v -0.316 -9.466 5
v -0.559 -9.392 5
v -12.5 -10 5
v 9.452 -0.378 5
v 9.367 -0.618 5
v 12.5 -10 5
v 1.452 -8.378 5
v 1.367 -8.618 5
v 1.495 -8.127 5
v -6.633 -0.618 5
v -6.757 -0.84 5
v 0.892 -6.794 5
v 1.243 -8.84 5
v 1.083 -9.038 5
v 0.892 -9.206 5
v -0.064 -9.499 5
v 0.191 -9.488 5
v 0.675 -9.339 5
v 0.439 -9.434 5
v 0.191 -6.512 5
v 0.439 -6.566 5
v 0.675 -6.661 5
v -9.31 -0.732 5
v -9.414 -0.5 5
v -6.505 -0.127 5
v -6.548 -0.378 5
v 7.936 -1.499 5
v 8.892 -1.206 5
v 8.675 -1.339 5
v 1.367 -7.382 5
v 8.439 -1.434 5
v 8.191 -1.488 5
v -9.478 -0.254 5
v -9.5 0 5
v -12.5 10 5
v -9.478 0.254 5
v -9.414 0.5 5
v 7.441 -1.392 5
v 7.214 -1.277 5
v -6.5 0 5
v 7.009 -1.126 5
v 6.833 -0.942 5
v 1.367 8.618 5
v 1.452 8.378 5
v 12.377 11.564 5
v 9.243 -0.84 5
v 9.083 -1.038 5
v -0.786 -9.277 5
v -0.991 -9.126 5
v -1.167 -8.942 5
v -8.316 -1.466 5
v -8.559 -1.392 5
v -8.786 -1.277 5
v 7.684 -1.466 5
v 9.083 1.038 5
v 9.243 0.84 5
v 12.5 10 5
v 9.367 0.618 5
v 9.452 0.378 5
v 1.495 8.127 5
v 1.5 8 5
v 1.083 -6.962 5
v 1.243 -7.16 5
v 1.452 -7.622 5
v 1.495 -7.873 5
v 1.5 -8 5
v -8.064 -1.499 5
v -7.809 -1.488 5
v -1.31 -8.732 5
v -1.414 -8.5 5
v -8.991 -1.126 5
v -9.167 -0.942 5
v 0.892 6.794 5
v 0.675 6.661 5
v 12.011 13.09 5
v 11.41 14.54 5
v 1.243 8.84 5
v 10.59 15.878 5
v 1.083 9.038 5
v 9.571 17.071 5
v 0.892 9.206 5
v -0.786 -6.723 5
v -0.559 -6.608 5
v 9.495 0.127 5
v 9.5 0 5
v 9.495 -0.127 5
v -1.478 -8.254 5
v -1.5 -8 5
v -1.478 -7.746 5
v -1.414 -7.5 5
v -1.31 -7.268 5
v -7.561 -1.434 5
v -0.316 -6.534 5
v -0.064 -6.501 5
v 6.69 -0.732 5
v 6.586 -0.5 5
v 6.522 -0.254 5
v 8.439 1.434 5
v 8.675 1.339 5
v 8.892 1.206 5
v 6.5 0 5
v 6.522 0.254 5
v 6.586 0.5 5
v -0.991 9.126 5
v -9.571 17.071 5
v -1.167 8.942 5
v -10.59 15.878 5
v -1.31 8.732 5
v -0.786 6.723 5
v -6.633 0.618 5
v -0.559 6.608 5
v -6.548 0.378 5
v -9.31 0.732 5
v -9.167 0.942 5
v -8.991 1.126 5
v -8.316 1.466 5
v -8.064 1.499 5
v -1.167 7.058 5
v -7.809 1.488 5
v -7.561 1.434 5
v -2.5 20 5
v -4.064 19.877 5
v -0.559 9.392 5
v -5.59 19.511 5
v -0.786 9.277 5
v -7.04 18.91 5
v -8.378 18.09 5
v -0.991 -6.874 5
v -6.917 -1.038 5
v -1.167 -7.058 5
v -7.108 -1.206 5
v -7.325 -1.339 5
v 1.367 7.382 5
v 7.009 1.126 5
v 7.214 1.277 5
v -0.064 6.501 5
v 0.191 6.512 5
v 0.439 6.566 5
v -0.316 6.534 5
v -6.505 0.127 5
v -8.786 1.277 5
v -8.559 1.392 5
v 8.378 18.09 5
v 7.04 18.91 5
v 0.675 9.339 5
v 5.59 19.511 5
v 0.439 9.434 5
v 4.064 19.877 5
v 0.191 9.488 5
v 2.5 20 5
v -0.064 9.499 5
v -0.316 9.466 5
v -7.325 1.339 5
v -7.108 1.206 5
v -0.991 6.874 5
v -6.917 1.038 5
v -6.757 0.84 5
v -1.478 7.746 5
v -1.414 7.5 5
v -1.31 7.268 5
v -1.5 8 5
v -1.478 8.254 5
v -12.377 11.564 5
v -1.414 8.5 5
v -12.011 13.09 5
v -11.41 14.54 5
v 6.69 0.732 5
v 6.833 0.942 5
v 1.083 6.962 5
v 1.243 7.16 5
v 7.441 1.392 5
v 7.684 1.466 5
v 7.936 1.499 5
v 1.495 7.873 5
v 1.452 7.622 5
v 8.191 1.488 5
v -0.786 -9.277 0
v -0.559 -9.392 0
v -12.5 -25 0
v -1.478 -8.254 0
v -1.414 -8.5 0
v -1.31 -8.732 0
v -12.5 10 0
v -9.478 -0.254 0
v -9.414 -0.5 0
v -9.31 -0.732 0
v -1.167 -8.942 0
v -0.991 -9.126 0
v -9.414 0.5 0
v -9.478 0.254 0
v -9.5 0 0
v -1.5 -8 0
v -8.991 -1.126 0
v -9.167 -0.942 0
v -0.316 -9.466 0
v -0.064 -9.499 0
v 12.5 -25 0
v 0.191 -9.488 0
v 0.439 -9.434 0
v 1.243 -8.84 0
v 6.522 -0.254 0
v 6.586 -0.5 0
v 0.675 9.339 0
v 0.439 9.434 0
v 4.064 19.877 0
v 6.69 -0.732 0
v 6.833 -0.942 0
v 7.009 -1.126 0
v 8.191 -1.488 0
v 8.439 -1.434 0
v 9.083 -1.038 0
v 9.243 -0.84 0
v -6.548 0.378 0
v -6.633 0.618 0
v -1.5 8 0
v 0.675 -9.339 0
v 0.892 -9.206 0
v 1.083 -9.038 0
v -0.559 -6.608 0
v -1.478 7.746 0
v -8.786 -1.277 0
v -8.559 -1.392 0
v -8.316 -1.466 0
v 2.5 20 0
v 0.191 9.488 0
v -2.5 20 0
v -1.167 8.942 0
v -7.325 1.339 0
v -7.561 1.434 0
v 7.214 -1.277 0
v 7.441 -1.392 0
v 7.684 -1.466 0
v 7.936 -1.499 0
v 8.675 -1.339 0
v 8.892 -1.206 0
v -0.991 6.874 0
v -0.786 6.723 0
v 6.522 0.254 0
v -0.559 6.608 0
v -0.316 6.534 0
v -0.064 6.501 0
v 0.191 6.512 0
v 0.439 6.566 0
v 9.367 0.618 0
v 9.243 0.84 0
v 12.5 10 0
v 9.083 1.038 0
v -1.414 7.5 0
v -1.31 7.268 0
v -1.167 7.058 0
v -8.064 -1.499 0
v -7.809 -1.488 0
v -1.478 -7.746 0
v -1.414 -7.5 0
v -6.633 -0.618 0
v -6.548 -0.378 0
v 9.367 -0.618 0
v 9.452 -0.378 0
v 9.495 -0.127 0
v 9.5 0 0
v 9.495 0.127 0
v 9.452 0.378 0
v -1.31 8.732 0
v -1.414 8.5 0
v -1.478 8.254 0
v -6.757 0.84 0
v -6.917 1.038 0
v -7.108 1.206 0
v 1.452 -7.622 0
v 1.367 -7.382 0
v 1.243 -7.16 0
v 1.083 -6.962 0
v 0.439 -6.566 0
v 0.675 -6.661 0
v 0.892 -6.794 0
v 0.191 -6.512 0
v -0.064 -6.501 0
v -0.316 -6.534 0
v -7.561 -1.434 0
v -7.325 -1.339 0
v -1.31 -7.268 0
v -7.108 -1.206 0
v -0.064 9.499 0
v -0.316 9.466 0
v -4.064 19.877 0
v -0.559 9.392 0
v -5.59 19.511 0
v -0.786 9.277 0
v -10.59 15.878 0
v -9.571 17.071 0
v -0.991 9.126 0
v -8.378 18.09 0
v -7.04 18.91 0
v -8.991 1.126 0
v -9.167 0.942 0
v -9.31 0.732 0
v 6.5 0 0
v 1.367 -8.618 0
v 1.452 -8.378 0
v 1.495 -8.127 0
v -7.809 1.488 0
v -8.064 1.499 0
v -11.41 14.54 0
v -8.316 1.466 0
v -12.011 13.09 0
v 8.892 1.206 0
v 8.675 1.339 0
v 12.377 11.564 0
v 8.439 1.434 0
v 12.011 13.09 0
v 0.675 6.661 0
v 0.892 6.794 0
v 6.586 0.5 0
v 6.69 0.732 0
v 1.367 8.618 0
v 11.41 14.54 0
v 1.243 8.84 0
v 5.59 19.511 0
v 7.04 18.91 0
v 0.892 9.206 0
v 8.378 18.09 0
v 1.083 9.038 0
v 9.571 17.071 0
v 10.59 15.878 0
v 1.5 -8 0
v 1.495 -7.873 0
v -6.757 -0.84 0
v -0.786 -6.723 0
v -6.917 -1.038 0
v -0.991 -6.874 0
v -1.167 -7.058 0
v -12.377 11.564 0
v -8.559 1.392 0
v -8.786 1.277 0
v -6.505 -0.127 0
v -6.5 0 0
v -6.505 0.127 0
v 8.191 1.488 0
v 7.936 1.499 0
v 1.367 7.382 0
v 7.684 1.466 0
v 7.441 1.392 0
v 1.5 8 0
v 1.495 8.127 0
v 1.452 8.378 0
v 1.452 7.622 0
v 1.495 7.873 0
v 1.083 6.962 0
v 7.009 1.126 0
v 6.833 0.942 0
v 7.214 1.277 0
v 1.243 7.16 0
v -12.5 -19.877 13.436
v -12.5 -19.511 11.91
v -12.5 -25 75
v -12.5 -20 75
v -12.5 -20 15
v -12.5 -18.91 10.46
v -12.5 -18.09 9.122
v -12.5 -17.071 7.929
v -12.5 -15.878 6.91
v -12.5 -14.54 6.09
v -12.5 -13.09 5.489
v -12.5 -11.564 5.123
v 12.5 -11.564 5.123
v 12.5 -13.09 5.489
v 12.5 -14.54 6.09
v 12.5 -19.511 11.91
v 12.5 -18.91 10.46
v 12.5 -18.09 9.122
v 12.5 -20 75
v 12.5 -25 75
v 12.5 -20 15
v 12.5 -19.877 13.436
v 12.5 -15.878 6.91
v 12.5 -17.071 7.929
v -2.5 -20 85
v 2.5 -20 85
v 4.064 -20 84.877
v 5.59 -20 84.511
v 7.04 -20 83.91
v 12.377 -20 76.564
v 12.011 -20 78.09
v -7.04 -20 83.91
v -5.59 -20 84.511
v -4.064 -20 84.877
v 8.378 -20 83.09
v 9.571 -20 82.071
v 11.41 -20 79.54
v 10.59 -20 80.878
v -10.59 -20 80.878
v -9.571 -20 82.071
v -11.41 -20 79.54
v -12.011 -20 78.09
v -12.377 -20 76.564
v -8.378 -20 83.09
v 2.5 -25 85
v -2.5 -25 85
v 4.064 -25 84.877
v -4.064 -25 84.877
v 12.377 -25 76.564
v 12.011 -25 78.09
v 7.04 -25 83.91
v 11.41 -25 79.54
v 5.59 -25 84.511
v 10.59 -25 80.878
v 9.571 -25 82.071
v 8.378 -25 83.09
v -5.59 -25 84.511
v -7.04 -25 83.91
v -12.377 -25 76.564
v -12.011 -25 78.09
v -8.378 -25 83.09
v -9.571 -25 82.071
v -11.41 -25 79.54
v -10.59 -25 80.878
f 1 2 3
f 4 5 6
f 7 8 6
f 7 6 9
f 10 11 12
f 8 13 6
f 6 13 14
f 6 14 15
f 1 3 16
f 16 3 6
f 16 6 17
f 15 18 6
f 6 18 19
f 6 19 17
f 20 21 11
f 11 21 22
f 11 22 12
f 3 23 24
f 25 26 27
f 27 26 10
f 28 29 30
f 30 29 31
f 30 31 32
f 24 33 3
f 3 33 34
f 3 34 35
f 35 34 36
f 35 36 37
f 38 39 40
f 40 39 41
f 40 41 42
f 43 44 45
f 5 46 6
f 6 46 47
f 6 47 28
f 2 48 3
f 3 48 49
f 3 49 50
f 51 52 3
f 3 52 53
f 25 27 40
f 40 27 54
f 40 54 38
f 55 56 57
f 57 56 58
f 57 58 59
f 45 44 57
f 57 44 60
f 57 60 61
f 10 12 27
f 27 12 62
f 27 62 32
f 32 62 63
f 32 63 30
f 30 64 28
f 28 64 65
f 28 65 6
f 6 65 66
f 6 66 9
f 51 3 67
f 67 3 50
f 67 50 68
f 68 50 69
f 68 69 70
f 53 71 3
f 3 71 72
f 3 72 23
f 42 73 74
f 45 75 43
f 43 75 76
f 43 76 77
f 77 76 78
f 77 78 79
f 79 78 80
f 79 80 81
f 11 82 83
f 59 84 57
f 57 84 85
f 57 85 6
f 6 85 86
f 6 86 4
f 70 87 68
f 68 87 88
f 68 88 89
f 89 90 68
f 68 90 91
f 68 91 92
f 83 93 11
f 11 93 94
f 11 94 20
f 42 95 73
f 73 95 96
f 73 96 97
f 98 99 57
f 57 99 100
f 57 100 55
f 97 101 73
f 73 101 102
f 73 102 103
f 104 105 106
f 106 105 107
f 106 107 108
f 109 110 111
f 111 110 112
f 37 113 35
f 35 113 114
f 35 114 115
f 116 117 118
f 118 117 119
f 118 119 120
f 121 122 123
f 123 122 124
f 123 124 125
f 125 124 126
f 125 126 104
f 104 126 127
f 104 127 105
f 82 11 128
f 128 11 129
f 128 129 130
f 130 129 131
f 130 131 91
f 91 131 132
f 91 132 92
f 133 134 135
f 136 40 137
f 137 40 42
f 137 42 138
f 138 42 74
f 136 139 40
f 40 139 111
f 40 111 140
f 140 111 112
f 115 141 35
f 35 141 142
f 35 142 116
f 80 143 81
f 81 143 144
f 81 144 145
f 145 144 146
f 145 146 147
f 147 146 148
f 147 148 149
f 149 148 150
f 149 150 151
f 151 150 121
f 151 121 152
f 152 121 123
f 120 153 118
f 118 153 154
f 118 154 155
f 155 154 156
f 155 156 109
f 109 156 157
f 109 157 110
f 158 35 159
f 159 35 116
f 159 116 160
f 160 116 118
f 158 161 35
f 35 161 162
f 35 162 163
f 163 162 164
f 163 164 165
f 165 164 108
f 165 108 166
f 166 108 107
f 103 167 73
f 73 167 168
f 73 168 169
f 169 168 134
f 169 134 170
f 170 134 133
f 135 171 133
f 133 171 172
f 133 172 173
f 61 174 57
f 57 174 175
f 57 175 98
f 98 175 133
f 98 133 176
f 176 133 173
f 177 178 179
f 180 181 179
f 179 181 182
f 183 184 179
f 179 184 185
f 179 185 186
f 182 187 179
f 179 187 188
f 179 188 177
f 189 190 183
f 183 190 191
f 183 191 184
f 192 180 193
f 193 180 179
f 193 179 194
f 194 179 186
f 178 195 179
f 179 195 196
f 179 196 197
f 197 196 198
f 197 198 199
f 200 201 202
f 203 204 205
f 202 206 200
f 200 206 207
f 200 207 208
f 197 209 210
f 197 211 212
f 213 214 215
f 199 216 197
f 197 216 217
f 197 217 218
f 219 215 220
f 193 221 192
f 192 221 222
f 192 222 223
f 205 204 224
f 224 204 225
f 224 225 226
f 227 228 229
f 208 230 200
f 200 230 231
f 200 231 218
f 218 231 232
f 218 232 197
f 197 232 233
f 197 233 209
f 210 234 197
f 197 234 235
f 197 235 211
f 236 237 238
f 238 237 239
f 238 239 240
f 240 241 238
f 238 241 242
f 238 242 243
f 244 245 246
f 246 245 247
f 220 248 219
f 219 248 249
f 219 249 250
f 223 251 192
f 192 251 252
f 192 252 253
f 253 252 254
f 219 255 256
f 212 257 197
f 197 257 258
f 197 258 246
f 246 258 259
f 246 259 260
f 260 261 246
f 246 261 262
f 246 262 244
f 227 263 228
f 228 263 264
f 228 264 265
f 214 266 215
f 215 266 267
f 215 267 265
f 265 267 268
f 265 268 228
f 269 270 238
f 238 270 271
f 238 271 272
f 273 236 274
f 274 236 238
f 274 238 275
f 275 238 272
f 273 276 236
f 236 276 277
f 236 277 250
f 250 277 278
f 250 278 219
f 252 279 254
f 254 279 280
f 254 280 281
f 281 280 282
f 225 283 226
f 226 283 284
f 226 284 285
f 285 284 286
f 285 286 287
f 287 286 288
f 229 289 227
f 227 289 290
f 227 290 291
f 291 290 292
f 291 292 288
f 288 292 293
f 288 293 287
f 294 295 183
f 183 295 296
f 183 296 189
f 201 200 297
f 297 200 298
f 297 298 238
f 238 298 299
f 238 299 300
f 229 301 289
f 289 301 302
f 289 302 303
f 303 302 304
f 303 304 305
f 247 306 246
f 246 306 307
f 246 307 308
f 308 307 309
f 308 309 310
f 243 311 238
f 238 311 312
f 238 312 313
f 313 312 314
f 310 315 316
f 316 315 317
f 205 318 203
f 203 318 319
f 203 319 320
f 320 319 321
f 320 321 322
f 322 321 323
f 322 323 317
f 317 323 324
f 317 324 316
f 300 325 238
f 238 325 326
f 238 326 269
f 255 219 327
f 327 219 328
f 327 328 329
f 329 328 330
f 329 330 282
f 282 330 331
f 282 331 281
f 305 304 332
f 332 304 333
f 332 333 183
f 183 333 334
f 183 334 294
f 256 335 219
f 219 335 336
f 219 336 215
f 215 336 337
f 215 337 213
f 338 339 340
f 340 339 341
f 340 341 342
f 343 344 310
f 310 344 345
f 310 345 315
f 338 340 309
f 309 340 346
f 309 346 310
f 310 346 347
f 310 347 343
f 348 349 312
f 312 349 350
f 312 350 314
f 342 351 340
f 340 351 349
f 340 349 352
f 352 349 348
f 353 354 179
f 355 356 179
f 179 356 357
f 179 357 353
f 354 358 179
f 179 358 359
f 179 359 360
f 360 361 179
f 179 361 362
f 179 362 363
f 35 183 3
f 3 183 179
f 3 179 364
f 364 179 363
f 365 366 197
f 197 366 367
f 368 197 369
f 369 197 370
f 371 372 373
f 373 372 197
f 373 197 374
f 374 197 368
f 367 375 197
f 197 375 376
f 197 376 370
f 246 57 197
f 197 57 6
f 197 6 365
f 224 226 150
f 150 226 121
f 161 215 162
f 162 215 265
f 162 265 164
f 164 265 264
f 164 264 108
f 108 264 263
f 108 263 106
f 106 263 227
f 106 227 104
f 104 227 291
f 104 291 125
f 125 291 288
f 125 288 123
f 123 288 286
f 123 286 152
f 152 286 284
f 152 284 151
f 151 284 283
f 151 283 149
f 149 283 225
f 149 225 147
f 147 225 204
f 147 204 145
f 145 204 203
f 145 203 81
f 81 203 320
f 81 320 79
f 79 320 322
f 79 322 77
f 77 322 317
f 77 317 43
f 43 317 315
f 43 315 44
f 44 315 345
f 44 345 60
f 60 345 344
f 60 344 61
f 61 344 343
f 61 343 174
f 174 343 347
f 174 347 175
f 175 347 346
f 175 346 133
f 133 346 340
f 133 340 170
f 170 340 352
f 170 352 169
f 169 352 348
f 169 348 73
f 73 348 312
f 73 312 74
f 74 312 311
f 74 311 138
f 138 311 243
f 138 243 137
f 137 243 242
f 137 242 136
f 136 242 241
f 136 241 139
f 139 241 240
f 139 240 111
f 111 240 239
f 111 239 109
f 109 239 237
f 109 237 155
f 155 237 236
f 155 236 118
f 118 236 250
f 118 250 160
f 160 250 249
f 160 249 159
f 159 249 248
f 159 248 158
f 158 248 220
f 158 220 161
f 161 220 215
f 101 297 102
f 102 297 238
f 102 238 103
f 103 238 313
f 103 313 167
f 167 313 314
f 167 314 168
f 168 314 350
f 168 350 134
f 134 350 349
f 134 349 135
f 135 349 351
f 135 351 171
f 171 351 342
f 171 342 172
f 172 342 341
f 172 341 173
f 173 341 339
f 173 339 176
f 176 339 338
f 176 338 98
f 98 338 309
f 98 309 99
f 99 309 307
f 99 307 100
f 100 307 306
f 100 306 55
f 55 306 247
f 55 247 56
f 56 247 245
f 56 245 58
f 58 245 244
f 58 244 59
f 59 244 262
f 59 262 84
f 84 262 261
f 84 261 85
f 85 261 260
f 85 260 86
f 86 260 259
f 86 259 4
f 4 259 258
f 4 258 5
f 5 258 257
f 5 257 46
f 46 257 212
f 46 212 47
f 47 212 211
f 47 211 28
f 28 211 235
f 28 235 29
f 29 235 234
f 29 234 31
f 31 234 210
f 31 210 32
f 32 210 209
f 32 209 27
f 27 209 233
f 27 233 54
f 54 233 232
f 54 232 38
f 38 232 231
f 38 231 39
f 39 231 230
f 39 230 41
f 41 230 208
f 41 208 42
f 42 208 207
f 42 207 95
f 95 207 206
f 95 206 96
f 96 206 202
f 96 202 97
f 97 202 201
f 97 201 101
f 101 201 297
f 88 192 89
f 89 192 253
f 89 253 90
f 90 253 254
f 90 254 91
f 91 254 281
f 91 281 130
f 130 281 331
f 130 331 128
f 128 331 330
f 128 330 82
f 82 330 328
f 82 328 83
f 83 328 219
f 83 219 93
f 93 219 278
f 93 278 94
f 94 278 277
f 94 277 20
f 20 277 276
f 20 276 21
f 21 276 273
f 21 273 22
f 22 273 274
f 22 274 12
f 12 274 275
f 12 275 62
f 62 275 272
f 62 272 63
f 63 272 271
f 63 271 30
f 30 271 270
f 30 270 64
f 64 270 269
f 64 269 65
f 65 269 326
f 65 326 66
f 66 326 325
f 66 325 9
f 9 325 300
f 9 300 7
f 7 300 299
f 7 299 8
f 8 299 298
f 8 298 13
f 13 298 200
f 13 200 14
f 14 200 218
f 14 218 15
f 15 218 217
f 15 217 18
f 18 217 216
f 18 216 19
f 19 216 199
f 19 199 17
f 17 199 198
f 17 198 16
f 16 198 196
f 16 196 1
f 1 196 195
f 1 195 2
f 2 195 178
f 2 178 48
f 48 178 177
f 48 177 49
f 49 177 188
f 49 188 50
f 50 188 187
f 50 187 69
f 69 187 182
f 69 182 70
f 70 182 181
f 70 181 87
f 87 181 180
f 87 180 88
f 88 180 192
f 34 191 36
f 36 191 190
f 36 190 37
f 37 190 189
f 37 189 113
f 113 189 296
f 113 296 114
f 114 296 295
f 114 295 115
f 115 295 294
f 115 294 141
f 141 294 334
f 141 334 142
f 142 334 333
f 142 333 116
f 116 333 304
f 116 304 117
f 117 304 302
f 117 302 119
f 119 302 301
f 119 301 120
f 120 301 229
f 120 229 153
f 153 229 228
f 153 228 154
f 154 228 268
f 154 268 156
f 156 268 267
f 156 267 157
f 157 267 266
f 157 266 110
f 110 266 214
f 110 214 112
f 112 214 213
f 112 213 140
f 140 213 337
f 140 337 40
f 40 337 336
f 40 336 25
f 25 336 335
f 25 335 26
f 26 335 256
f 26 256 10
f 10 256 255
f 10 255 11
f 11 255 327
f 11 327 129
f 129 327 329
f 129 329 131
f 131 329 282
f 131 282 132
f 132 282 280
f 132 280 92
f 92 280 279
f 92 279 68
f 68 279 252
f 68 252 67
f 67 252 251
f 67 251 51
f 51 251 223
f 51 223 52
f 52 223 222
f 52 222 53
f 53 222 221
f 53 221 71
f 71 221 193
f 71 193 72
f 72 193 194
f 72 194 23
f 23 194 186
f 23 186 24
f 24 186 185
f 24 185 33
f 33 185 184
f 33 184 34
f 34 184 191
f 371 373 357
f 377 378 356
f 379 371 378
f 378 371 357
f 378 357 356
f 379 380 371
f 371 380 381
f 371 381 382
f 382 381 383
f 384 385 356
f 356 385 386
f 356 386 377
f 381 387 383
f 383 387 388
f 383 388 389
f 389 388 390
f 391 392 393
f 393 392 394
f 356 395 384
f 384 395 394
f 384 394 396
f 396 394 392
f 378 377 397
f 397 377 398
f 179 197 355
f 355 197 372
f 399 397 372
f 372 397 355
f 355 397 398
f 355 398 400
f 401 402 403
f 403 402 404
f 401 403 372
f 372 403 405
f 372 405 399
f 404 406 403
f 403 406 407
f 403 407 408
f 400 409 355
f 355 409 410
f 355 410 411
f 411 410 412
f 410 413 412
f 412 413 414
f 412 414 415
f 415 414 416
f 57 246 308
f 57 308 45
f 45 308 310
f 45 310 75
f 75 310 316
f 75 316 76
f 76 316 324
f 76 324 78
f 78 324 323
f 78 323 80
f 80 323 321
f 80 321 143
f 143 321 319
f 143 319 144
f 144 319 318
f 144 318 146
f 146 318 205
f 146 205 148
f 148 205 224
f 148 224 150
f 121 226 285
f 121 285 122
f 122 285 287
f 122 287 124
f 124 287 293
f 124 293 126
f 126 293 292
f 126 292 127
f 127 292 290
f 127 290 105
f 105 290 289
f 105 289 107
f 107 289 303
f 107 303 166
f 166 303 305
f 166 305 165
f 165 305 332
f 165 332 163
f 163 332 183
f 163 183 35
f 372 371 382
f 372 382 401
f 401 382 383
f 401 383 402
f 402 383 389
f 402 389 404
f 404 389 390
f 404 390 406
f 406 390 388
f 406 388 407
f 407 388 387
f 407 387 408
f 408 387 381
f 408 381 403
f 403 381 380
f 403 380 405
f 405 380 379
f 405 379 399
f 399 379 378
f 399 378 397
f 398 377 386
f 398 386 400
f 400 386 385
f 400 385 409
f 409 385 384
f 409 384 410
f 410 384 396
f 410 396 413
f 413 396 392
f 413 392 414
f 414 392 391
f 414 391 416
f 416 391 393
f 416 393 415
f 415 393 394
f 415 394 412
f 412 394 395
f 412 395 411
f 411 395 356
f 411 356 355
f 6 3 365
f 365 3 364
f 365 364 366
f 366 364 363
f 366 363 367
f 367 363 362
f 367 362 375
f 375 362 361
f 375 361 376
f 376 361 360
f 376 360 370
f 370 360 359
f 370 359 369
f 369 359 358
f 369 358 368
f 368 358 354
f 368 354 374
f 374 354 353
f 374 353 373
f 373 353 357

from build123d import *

# Parameters (mm, degrees)
SKETCH_1_W      = 25
SKETCH_1_H      = 40
SKETCH_1_R      = 1.5
EXTRUDE_1_DEPTH = 5
SKETCH_2_W      = 25
SKETCH_2_H      = 85
EXTRUDE_2_DEPTH = 5
FILLET_1_R      = 10


with BuildPart() as part:
    # 草图1 → 凸台-拉伸1 (new body)
    with BuildSketch(Plane.XY):
        Rectangle(SKETCH_1_W, SKETCH_1_H)
        with Locations((0, 8)):
            Circle(SKETCH_1_R, mode=Mode.SUBTRACT)
        with Locations((8, 0)):
            Circle(SKETCH_1_R, mode=Mode.SUBTRACT)
        with Locations((0, -8)):
            Circle(SKETCH_1_R, mode=Mode.SUBTRACT)
        with Locations((-8, 0)):
            Circle(SKETCH_1_R, mode=Mode.SUBTRACT)
    extrude(amount=EXTRUDE_1_DEPTH)

    # 草图2 → 凸台-拉伸2 (add)
    with BuildSketch(Plane.XZ.offset(20)):
        with Locations((0, 42.5)):
            Rectangle(SKETCH_2_W, SKETCH_2_H)
    extrude(amount=EXTRUDE_2_DEPTH)

    # 圆角1
    fillet_1_edges = [part.edges().sort_by_distance(p)[0] for p in [
        (-12.5, -22.5, 85),
        (12.5, -22.5, 85),
        (-12.5, 20, 2.5),
        (12.5, 20, 2.5),
        (0, -20, 5),
    ]]
    fillet(fillet_1_edges, radius=FILLET_1_R)


solid = part.part
